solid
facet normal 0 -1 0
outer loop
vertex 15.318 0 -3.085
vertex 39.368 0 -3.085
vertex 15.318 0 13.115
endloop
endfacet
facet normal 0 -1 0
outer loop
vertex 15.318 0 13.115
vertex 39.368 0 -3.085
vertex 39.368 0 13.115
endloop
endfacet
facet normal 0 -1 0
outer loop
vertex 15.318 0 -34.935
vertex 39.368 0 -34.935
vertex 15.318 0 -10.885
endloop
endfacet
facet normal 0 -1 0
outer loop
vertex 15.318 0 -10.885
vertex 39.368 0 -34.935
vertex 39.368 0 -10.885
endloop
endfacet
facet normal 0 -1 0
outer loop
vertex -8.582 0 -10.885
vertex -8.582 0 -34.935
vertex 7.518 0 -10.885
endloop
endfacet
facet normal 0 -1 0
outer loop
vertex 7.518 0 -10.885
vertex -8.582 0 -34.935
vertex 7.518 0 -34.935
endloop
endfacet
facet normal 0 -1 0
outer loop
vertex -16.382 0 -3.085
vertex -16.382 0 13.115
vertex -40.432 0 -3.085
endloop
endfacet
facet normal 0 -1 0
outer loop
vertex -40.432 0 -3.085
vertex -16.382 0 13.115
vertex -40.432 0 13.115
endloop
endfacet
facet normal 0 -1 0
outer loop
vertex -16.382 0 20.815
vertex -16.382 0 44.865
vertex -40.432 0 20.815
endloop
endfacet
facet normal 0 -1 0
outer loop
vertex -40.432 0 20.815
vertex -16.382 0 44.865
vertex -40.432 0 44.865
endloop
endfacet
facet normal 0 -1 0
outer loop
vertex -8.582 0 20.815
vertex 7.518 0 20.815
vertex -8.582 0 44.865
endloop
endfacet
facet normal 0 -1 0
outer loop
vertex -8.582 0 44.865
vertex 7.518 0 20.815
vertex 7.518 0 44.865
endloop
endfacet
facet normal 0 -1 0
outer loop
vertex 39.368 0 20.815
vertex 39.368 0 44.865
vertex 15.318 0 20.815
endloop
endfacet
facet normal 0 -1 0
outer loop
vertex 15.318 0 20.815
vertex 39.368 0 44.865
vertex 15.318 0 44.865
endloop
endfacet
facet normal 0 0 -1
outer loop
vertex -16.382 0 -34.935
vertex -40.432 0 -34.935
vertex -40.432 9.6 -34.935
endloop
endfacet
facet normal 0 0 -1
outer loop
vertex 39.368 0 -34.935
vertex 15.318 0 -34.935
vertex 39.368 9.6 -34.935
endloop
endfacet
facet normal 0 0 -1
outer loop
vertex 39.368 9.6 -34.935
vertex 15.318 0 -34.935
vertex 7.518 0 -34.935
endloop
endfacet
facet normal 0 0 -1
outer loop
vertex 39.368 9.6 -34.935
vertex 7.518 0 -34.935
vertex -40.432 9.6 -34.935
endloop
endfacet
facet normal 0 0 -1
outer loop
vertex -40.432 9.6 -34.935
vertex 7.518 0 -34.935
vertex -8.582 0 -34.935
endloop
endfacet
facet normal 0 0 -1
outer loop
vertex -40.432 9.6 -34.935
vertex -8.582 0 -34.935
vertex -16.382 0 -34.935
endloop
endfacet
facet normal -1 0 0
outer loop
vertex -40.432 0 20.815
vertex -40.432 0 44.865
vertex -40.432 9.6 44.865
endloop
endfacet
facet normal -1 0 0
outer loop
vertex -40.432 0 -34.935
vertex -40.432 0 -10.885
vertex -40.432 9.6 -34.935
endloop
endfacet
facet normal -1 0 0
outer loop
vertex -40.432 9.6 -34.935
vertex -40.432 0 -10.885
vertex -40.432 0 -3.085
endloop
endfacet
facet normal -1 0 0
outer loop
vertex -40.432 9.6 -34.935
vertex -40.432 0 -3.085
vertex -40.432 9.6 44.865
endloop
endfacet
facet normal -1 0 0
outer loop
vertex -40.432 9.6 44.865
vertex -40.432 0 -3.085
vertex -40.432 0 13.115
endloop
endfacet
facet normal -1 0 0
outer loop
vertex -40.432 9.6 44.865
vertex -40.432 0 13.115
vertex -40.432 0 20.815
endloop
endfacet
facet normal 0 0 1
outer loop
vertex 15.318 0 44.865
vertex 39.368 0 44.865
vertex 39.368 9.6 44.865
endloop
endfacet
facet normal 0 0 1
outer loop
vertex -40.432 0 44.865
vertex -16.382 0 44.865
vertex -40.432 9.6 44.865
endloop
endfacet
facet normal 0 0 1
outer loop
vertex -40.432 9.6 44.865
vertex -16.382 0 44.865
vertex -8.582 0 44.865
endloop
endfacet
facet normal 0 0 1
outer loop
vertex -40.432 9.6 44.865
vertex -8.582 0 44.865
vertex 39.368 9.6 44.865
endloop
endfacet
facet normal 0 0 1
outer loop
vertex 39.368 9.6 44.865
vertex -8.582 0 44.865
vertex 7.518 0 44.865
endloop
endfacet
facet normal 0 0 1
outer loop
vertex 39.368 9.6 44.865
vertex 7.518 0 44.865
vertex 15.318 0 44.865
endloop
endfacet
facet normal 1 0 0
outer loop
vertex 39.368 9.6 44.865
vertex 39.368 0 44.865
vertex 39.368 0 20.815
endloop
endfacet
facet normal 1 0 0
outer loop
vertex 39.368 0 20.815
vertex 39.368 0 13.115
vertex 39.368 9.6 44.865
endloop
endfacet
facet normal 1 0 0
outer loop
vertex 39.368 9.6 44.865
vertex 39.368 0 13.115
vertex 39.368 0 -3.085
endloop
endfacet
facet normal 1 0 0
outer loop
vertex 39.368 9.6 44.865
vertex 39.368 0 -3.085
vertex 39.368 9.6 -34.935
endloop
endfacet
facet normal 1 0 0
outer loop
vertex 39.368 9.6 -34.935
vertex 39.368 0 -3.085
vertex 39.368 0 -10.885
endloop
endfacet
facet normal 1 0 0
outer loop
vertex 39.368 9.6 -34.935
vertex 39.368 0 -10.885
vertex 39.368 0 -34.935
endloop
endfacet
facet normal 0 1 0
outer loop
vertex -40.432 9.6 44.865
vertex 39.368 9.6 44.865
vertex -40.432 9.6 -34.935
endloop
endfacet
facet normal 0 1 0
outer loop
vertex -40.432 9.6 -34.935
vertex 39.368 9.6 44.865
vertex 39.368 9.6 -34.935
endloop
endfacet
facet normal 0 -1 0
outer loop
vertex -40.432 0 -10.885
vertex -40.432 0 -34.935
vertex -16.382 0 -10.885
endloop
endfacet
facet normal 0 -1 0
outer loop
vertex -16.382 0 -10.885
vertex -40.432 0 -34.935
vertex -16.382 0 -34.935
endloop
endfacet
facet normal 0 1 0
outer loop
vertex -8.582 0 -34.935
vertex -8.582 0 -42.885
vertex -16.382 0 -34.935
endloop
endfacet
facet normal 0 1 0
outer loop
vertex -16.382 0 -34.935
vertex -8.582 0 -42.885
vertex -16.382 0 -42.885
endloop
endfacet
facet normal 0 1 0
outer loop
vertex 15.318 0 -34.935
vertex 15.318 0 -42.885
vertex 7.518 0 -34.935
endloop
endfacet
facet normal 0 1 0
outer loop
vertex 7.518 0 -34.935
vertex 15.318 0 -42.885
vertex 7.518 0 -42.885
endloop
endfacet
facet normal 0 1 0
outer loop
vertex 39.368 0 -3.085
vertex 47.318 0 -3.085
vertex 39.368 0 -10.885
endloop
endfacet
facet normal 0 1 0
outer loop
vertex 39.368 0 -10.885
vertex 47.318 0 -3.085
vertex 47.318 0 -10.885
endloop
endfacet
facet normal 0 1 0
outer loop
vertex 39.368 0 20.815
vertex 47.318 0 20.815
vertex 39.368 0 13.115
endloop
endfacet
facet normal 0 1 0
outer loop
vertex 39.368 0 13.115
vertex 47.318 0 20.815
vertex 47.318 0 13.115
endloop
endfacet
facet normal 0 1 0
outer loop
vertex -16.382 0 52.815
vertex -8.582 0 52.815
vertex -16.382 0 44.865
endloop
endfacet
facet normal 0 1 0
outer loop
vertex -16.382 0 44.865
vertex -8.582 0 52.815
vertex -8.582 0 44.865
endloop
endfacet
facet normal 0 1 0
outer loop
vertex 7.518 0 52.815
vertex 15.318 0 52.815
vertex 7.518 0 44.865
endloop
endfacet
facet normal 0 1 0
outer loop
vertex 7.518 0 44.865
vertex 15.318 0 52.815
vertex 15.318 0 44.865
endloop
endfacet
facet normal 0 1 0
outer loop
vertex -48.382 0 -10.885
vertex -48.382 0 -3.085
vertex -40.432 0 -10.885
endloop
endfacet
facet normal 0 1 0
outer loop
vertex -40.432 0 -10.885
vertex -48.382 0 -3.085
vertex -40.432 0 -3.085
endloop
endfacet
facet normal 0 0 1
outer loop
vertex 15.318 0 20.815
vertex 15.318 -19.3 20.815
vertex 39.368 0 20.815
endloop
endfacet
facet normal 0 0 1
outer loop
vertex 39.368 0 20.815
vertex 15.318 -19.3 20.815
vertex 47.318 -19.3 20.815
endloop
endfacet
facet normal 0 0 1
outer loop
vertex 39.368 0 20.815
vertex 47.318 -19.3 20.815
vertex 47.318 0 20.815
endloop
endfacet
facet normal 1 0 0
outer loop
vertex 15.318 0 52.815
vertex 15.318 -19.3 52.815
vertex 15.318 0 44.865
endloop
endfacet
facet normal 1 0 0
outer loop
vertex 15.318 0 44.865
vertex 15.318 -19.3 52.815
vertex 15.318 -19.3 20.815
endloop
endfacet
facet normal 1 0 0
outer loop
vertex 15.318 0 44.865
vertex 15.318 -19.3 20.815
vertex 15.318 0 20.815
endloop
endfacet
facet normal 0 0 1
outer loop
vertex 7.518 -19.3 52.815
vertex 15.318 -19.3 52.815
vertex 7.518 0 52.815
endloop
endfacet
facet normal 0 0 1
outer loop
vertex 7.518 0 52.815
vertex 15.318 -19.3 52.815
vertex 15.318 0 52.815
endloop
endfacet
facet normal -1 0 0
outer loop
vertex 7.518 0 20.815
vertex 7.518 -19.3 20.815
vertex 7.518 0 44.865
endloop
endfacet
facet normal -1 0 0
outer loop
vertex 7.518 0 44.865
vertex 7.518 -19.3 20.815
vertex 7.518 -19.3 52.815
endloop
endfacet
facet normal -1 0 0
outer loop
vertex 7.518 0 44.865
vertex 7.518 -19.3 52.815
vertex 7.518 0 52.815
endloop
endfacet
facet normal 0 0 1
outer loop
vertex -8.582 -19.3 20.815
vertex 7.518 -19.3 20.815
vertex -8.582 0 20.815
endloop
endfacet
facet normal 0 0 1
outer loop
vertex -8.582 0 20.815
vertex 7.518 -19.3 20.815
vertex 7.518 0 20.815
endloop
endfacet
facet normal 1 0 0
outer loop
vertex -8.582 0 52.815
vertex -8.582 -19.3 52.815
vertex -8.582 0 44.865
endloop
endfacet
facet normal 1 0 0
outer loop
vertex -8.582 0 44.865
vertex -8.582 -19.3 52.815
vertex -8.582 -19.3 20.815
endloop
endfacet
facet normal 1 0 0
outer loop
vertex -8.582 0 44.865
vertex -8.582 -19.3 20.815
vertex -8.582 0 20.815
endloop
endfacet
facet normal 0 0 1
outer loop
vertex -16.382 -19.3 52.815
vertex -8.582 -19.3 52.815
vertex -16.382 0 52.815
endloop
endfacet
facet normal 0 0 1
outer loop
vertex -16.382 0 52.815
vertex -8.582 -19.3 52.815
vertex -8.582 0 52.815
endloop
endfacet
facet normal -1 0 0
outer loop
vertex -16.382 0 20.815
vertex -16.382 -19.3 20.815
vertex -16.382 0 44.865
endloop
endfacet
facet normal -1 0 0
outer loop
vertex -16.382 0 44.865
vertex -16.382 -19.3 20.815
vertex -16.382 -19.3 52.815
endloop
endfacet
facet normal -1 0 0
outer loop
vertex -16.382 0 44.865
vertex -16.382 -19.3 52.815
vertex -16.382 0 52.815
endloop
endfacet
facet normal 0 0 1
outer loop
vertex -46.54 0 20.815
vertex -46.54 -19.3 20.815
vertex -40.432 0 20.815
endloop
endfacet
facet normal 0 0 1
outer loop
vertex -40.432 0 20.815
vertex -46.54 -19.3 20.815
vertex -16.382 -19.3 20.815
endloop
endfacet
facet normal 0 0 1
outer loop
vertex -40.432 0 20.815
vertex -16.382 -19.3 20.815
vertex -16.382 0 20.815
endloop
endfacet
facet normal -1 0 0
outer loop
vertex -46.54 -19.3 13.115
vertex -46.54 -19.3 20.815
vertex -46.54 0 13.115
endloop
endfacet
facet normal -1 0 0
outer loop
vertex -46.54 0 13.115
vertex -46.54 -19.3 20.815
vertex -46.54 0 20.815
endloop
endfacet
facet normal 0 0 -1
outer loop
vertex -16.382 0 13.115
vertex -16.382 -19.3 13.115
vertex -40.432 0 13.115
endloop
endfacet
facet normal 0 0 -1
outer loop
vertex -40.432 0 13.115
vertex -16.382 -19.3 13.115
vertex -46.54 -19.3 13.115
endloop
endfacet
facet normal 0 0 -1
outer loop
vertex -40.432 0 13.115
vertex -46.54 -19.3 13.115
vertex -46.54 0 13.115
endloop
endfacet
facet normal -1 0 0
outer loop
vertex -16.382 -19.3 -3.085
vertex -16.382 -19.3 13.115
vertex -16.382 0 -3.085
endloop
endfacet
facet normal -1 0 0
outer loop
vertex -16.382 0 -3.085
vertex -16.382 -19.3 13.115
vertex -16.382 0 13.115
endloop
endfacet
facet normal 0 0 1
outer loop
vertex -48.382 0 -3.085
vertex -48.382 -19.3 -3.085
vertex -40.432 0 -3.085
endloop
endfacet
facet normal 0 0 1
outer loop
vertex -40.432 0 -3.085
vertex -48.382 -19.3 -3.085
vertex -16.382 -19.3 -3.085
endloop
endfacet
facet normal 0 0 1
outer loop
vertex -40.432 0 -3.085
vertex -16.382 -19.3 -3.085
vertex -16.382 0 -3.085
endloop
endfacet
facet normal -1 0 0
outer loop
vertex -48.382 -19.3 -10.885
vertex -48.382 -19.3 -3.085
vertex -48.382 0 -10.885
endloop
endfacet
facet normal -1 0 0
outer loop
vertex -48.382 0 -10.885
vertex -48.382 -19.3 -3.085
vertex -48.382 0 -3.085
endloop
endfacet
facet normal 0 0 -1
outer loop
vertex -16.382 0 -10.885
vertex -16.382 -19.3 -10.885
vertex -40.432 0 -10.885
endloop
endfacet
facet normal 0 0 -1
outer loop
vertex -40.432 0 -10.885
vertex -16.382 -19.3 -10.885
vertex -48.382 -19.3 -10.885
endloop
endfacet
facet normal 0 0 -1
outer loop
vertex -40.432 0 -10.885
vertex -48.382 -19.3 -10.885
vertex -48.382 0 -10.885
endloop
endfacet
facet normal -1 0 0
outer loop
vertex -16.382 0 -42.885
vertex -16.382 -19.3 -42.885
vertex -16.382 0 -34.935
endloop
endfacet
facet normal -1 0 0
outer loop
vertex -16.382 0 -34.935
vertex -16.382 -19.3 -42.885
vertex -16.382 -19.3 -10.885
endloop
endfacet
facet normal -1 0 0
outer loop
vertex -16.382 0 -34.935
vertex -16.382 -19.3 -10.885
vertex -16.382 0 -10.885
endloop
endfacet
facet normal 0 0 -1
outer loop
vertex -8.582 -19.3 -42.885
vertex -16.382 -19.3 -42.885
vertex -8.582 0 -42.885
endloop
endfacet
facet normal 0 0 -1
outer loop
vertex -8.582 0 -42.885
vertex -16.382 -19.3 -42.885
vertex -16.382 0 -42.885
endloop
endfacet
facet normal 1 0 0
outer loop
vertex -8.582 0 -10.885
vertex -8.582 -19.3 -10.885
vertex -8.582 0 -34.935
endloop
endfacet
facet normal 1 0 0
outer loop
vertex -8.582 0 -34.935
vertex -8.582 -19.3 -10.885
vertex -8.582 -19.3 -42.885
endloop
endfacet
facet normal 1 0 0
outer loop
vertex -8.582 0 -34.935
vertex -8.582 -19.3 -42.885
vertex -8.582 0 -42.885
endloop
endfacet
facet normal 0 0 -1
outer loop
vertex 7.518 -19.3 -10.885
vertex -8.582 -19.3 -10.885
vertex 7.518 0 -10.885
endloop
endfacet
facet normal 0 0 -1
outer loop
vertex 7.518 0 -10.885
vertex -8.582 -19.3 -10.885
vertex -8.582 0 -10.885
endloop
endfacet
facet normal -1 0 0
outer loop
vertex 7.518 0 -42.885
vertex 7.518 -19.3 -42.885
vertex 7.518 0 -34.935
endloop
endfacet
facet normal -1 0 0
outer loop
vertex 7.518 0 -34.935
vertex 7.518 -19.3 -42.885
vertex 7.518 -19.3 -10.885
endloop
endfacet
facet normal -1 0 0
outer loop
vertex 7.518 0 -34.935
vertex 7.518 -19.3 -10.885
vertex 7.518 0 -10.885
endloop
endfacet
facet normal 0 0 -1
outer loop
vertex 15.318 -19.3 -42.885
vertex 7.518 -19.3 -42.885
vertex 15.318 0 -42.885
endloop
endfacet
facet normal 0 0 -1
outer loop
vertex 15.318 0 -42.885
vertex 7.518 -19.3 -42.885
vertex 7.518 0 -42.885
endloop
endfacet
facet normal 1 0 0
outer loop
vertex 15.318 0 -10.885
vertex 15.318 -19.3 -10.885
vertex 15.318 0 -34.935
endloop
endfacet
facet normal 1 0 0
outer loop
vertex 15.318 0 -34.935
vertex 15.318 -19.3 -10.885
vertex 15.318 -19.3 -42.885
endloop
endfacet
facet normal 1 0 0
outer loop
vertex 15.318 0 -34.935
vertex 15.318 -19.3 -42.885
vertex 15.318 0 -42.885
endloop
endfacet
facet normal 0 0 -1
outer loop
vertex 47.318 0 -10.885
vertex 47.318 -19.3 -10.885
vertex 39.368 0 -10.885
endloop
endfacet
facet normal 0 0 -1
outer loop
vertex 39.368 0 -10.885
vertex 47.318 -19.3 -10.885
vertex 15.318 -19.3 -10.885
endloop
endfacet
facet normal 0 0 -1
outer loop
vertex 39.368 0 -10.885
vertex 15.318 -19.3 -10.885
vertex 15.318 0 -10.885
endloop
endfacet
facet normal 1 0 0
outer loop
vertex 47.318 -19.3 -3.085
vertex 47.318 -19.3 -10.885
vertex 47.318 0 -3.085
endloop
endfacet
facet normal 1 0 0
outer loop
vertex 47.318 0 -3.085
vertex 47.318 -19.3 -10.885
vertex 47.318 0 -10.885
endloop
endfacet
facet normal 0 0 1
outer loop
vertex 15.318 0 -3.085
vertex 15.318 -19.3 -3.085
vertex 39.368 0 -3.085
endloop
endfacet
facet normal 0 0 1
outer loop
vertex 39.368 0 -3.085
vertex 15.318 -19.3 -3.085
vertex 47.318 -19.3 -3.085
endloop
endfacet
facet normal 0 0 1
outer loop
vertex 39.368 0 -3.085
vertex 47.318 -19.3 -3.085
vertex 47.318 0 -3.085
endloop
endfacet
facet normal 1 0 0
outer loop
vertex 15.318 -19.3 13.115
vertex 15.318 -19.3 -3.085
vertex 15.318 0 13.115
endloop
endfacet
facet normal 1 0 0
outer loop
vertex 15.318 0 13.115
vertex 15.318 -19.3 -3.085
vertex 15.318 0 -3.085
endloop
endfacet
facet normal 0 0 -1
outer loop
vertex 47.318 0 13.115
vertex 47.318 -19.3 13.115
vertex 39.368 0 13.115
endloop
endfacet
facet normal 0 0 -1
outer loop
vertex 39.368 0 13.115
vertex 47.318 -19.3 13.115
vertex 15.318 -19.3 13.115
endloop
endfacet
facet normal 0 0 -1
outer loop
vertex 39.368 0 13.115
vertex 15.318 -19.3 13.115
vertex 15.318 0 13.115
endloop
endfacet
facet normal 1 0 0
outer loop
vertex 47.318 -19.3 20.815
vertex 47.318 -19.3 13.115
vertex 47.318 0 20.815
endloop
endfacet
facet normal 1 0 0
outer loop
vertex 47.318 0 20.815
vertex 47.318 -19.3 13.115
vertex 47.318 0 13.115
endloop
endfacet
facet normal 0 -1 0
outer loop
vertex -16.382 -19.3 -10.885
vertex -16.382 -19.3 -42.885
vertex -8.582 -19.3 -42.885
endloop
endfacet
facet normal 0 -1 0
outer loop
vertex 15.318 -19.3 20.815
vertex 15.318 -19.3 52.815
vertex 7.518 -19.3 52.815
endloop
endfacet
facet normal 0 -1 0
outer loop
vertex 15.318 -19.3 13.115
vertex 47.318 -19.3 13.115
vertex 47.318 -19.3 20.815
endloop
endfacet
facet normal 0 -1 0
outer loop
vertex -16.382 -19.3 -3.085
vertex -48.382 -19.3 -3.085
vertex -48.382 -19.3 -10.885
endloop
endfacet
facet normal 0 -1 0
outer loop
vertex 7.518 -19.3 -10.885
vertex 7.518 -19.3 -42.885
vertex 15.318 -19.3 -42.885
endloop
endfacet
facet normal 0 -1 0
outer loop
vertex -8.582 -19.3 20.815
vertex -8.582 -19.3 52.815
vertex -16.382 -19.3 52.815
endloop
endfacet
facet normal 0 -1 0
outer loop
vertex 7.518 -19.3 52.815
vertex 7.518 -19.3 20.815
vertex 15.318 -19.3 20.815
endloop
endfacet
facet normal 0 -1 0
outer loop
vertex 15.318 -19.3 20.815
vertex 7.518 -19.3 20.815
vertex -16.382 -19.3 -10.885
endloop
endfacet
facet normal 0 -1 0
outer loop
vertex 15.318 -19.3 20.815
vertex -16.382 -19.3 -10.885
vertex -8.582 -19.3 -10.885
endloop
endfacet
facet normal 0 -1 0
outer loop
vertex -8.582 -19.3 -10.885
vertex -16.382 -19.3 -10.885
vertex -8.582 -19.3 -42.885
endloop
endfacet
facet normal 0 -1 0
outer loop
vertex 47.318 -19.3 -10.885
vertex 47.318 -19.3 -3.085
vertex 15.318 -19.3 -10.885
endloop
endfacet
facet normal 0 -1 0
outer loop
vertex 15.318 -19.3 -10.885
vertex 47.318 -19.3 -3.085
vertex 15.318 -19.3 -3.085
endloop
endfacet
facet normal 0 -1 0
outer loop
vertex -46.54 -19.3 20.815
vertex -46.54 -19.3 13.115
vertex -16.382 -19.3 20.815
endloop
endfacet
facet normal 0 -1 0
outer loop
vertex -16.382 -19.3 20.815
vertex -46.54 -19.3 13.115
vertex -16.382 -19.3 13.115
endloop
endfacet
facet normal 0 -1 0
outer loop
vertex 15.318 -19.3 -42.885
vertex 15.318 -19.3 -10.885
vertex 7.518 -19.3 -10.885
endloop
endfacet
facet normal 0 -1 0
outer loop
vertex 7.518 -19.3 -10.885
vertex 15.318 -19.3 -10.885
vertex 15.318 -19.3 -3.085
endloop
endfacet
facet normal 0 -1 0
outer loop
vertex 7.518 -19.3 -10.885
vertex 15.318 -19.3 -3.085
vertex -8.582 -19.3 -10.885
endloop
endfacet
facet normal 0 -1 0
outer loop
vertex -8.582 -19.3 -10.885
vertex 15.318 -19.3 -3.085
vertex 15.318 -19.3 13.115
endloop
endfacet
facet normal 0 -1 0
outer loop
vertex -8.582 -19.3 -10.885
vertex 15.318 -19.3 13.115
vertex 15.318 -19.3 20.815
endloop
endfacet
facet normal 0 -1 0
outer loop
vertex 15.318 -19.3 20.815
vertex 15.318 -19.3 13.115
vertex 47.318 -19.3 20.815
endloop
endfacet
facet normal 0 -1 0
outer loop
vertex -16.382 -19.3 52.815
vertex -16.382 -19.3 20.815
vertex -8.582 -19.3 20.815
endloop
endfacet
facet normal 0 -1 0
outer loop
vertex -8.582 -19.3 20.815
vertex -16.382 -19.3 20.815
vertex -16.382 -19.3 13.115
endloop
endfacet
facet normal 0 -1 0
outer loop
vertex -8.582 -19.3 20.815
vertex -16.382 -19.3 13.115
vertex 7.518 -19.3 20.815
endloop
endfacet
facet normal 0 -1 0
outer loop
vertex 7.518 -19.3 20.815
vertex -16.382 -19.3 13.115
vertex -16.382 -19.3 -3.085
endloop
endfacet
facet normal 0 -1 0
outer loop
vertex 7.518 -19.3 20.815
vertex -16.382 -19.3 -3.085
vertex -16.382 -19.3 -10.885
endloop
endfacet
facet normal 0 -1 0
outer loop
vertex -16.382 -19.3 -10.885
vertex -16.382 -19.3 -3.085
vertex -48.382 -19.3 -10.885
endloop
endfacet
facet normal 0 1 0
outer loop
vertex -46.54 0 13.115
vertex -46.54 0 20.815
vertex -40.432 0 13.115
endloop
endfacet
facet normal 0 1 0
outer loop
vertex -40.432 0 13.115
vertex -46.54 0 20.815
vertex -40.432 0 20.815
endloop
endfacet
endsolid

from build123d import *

# Parameters (mm, degrees)
SKETCH1_W           = 79.8
SKETCH1_H           = 79.8
BOSS_EXTRUDE1_DEPTH = 9.6
SKETCH3_W           = 93.857769302
SKETCH3_H           = 7.7
SKETCH3_W_2         = 31.7
SKETCH3_H_2         = 31.7
SKETCH3_W_3         = 95.7
SKETCH3_H_3         = 7.8
SKETCH3_W_4         = 7.8
SKETCH3_H_4         = 95.7
BOSS_EXTRUDE2_DEPTH = 19.3


with BuildPart() as part:
    # Sketch1 → Boss-Extrude1 (new body)
    with BuildSketch(Plane(origin=(0, 0, 0), x_dir=(1, 0, 0), z_dir=(0, 1, 0))):
        with Locations((-0.532, -4.965333333)):
            Rectangle(SKETCH1_W, SKETCH1_H)
    extrude(amount=BOSS_EXTRUDE1_DEPTH)

    # Sketch3 → Boss-Extrude2 (add)
    with BuildSketch(Plane.XZ):
        with Locations((0.389115349, 16.965333333)):
            Rectangle(SKETCH3_W, SKETCH3_H)
        with Locations((-0.532, 4.965333333)):
            Rectangle(SKETCH3_W_2, SKETCH3_H_2)
        with Locations((-0.532, -6.984666667)):
            Rectangle(SKETCH3_W_3, SKETCH3_H_3)
        with Locations((-12.482, 4.965333333)):
            Rectangle(SKETCH3_W_4, SKETCH3_H_4)
        with Locations((11.418, 4.965333333)):
            Rectangle(SKETCH3_W_4, SKETCH3_H_4)
    extrude(amount=BOSS_EXTRUDE2_DEPTH)


solid = part.part
